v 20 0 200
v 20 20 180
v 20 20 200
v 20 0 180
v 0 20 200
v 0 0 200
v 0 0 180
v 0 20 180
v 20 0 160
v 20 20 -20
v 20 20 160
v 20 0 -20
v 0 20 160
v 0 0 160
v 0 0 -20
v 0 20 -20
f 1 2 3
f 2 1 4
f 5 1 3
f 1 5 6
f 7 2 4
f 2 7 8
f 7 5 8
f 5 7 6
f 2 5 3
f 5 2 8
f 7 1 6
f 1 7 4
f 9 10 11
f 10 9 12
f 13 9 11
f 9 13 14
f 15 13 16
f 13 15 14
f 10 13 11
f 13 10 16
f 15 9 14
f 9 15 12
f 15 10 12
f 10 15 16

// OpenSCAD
// Define dimensions
cube_size = 20; // Size of the cube
rect_prism_width = 20; // Width of the rectangular prism
rect_prism_depth = 20; // Depth of the rectangular prism
rect_prism_height = 40; // Height of the rectangular prism

// Layer 1: Cube 1 (Topmost position)
translate([0, 0, rect_prism_height * 4 + cube_size]) {
    cube([cube_size, cube_size, cube_size]);
}

// Layer 2: Rectangular Prism 1 (Below Cube 1)
translate([0, 0, rect_prism_height * 3]) {
    cube([rect_prism_width, rect_prism_depth, rect_prism_height]);
}

// Layer 3: Rectangular Prism 2 (Below Rectangular Prism 1)
translate([0, 0, rect_prism_height * 2]) {
    cube([rect_prism_width, rect_prism_depth, rect_prism_height]);
}

// Layer 4: Rectangular Prism 3 (Below Rectangular Prism 2)
translate([0, 0, rect_prism_height]) {
    cube([rect_prism_width, rect_prism_depth, rect_prism_height]);
}

// Layer 5: Rectangular Prism 4 (Below Rectangular Prism 3)
translate([0, 0, 0]) {
    cube([rect_prism_width, rect_prism_depth, rect_prism_height]);
}

// Layer 6: Cube 2 (Bottommost position)
translate([0, 0, -cube_size]) {
    cube([cube_size, cube_size, cube_size]);
}
